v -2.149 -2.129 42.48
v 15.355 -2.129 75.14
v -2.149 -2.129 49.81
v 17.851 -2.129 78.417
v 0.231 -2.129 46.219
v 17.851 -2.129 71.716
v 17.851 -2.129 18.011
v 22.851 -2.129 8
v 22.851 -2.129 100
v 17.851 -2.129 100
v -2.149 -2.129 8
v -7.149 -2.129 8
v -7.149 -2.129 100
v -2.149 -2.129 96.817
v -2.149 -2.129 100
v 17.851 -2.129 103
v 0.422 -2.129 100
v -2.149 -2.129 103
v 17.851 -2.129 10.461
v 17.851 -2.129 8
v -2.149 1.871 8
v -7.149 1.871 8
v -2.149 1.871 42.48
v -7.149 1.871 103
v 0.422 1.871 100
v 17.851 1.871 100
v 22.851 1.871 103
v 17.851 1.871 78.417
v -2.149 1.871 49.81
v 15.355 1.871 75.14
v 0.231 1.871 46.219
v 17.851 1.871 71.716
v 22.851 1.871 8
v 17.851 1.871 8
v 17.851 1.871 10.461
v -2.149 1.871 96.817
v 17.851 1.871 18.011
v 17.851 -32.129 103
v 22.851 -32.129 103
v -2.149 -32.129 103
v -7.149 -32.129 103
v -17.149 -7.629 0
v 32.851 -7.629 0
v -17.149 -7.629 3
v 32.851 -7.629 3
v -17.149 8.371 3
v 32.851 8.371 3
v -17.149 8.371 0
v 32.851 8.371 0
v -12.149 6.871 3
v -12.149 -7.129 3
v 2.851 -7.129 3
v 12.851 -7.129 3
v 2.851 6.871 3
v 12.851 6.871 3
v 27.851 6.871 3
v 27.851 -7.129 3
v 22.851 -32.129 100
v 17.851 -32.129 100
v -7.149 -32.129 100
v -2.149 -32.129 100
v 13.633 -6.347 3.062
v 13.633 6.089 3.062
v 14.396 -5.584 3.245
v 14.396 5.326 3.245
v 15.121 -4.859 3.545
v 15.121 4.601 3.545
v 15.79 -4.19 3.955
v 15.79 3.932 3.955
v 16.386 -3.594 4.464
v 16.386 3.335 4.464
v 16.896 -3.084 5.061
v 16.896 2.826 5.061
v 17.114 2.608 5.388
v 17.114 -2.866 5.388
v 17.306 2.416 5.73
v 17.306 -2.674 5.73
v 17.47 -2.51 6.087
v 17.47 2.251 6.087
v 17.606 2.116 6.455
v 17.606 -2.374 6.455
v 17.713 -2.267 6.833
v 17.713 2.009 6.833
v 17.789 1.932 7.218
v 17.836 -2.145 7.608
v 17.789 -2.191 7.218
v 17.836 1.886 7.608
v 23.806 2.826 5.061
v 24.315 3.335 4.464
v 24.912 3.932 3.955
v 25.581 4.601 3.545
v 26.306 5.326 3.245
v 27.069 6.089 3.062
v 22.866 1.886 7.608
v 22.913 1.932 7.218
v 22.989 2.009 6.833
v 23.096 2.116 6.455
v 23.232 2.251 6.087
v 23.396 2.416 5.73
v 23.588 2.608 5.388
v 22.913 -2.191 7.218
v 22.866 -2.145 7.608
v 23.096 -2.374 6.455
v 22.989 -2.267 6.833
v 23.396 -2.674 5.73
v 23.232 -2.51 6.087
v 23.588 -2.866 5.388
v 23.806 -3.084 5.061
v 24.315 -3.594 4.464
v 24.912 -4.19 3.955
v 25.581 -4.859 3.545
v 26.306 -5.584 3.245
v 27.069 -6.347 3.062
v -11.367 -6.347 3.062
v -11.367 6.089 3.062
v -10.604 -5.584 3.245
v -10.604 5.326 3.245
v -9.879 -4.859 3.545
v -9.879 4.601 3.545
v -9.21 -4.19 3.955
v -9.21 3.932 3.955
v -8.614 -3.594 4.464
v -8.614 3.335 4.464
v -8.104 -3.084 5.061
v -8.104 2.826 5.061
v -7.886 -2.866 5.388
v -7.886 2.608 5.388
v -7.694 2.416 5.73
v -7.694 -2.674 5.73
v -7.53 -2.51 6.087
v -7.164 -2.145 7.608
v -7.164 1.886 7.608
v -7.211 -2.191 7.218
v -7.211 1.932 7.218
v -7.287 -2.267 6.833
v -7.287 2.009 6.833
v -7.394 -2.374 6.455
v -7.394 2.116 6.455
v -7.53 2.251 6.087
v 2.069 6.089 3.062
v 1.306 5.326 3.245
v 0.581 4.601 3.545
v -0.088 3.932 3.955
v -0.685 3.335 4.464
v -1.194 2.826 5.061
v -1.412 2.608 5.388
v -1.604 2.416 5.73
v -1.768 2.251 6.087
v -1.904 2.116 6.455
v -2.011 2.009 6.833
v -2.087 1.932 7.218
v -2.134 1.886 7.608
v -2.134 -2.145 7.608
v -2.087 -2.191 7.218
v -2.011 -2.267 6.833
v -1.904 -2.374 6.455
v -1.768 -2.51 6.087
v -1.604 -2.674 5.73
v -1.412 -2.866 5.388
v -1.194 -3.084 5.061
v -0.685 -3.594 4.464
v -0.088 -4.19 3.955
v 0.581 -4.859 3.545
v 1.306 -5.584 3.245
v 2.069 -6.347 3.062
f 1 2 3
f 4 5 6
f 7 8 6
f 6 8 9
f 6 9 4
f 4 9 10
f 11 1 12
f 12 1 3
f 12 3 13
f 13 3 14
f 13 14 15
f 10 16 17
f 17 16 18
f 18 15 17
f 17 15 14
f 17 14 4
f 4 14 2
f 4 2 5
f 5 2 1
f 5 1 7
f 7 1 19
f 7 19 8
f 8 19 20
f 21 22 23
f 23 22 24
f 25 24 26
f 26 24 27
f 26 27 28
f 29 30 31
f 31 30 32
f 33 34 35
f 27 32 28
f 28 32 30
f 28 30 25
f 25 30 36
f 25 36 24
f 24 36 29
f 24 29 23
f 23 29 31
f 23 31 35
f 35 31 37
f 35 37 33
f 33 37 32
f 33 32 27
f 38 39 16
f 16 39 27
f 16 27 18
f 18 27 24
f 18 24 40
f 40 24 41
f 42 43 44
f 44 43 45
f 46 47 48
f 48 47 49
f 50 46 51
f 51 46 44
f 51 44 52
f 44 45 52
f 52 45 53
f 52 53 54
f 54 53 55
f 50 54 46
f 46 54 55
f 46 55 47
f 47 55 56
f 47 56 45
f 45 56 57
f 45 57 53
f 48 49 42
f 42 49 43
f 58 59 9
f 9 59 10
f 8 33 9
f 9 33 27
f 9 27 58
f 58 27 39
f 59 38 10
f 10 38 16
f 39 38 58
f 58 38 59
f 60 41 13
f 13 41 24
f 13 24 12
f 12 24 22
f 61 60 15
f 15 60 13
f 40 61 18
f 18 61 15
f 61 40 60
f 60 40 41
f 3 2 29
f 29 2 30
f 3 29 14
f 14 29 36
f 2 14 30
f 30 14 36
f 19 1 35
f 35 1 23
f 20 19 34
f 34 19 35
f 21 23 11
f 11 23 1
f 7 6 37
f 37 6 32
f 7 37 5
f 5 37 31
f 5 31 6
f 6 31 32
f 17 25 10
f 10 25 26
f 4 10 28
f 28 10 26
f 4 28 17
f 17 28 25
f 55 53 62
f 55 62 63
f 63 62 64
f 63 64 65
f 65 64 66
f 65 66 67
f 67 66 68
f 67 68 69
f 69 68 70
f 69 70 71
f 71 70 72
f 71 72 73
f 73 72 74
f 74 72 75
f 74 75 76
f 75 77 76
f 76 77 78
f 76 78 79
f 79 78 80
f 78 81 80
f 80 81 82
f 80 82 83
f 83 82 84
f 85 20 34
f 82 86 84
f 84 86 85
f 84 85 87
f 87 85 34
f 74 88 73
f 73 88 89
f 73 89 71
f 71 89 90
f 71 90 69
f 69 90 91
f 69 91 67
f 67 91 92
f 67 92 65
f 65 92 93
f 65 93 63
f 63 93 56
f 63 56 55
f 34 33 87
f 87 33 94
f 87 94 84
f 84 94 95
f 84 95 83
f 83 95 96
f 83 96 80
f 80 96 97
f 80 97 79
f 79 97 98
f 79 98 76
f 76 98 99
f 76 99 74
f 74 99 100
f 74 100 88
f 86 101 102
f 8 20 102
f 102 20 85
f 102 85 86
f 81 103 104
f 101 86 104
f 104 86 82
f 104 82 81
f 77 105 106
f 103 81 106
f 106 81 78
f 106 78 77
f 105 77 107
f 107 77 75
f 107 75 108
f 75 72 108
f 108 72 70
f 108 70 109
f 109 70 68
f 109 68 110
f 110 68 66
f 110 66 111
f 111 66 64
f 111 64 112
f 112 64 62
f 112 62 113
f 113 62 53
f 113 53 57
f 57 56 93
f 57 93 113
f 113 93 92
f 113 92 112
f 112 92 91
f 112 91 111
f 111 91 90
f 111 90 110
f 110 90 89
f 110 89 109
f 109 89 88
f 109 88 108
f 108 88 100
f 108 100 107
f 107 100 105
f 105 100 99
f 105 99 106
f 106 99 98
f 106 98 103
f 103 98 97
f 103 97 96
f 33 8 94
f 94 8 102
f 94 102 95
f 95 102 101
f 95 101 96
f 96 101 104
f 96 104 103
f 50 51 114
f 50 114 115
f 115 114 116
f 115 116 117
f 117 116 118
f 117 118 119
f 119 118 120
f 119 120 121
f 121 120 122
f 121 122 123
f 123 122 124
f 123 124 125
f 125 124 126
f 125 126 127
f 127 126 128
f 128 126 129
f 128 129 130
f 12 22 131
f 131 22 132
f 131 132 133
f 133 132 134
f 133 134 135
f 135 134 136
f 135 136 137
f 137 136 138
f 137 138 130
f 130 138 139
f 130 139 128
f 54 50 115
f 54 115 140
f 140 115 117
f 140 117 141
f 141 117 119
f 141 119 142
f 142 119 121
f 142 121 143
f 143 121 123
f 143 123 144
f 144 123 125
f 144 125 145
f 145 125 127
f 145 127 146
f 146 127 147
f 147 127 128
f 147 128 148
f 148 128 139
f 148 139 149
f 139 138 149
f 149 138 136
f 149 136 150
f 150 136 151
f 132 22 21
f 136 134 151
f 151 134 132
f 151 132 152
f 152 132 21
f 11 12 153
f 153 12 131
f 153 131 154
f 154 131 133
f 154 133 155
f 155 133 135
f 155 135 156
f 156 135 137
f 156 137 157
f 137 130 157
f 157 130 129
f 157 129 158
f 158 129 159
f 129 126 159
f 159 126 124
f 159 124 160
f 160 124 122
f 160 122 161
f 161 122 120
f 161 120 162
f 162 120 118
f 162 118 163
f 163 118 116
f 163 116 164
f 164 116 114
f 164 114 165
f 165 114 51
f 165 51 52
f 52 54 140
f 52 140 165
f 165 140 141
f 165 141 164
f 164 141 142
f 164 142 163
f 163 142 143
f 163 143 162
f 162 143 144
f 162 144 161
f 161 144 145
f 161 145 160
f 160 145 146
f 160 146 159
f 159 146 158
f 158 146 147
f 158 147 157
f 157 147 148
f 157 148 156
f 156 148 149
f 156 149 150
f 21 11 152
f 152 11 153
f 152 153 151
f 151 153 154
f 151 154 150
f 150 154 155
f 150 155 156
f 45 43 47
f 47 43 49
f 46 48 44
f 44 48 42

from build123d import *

# Parameters (mm, degrees)
SKETCH_1_W          = 60
SKETCH_1_H          = 16
EXTRUDE_1_DEPTH     = 3
SKETCH_2_W          = 60
SKETCH_2_H          = 4
EXTRUDE_2_DEPTH     = 100
SKETCH_3_W          = 5
SKETCH_3_H          = 3
EXTRUDE_3_DEPTH     = 30
CUT_EXTRUDE_2_DEPTH = 12
FILLET_2_R          = 5
SKETCH_6_W          = 5
SKETCH_6_H          = 16
CUT_EXTRUDE_3_DEPTH = 12


with BuildPart() as part:
    # 草图1 → 凸台-拉伸1 (new body)
    with BuildSketch(Plane.XY):
        with Locations((7.850953206, 0.370883882)):
            Rectangle(SKETCH_1_W, SKETCH_1_H)
    extrude(amount=EXTRUDE_1_DEPTH)

    # 草图2 → 凸台-拉伸2 (add)
    with BuildSketch(Plane.XY.offset(3)):
        with Locations((7.850953206, -0.129116118)):
            Rectangle(SKETCH_2_W, SKETCH_2_H)
    extrude(amount=EXTRUDE_2_DEPTH)

    # 草图3 → 凸台-拉伸3 (add)
    with BuildSketch(Plane.XZ.offset(2.129116118)):
        with Locations((-4.649046794, 101.5)):
            Rectangle(SKETCH_3_W, SKETCH_3_H)
        with Locations((20.350953206, 101.5)):
            Rectangle(SKETCH_3_W, SKETCH_3_H)
    extrude(amount=EXTRUDE_3_DEPTH)

    # 草图4 → 切除-拉伸2 (cut)
    with BuildSketch(Plane.XZ.offset(2.129116118)):
        Polygon((-7.149046794, 103), (-22.149046794, 103), (-22.149046794, 3), (-7.149046794, 3), (-7.149046794, 100), align=None)
        Polygon((-2.149046794, 42.479838541), (-2.149046794, 3), (17.850953206, 3), (17.850953206, 10.460890497), (16.154674687, 13.176543186), align=None)
        Polygon((17.850953206, 71.715630146), (17.850953206, 18.011289252), (0.231428364, 46.219221776), align=None)
        Polygon((15.355477041, 75.140410003), (-2.149046794, 49.810414331), (-2.149046794, 96.816642788), align=None)
        Polygon((22.850953206, 100), (22.850953206, 3), (37.850953206, 3), (37.850953206, 103), (22.850953206, 103), align=None)
        Polygon((17.850953206, 100), (17.850953206, 78.416921986), (0.421656, 100), align=None)
    extrude(amount=-CUT_EXTRUDE_2_DEPTH, mode=Mode.SUBTRACT)

    # 圆角2
    fillet_2_edges = [part.edges().sort_by_distance(p)[0] for p in [
        (17.850953206, -0.129116118, 3),
        (-2.149046794, -0.129116118, 3),
        (22.850953206, -0.129116118, 3),
        (20.350953206, 1.870883882, 3),
        (-4.649046794, 1.870883882, 3),
        (-4.649046794, -2.129116118, 3),
        (20.350953206, -2.129116118, 3),
        (-7.149046794, -0.129116118, 3),
    ]]
    fillet(fillet_2_edges, radius=FILLET_2_R)

    # 草图6 → 切除-拉伸3 (cut)
    with BuildSketch(Plane.XY.offset(3)):
        with Locations((-19.649046794, 0.370883882)):
            Rectangle(SKETCH_6_W, SKETCH_6_H)
        with Locations((35.350953206, 0.370883882)):
            Rectangle(SKETCH_6_W, SKETCH_6_H)
    extrude(amount=-CUT_EXTRUDE_3_DEPTH, mode=Mode.SUBTRACT)


solid = part.part
